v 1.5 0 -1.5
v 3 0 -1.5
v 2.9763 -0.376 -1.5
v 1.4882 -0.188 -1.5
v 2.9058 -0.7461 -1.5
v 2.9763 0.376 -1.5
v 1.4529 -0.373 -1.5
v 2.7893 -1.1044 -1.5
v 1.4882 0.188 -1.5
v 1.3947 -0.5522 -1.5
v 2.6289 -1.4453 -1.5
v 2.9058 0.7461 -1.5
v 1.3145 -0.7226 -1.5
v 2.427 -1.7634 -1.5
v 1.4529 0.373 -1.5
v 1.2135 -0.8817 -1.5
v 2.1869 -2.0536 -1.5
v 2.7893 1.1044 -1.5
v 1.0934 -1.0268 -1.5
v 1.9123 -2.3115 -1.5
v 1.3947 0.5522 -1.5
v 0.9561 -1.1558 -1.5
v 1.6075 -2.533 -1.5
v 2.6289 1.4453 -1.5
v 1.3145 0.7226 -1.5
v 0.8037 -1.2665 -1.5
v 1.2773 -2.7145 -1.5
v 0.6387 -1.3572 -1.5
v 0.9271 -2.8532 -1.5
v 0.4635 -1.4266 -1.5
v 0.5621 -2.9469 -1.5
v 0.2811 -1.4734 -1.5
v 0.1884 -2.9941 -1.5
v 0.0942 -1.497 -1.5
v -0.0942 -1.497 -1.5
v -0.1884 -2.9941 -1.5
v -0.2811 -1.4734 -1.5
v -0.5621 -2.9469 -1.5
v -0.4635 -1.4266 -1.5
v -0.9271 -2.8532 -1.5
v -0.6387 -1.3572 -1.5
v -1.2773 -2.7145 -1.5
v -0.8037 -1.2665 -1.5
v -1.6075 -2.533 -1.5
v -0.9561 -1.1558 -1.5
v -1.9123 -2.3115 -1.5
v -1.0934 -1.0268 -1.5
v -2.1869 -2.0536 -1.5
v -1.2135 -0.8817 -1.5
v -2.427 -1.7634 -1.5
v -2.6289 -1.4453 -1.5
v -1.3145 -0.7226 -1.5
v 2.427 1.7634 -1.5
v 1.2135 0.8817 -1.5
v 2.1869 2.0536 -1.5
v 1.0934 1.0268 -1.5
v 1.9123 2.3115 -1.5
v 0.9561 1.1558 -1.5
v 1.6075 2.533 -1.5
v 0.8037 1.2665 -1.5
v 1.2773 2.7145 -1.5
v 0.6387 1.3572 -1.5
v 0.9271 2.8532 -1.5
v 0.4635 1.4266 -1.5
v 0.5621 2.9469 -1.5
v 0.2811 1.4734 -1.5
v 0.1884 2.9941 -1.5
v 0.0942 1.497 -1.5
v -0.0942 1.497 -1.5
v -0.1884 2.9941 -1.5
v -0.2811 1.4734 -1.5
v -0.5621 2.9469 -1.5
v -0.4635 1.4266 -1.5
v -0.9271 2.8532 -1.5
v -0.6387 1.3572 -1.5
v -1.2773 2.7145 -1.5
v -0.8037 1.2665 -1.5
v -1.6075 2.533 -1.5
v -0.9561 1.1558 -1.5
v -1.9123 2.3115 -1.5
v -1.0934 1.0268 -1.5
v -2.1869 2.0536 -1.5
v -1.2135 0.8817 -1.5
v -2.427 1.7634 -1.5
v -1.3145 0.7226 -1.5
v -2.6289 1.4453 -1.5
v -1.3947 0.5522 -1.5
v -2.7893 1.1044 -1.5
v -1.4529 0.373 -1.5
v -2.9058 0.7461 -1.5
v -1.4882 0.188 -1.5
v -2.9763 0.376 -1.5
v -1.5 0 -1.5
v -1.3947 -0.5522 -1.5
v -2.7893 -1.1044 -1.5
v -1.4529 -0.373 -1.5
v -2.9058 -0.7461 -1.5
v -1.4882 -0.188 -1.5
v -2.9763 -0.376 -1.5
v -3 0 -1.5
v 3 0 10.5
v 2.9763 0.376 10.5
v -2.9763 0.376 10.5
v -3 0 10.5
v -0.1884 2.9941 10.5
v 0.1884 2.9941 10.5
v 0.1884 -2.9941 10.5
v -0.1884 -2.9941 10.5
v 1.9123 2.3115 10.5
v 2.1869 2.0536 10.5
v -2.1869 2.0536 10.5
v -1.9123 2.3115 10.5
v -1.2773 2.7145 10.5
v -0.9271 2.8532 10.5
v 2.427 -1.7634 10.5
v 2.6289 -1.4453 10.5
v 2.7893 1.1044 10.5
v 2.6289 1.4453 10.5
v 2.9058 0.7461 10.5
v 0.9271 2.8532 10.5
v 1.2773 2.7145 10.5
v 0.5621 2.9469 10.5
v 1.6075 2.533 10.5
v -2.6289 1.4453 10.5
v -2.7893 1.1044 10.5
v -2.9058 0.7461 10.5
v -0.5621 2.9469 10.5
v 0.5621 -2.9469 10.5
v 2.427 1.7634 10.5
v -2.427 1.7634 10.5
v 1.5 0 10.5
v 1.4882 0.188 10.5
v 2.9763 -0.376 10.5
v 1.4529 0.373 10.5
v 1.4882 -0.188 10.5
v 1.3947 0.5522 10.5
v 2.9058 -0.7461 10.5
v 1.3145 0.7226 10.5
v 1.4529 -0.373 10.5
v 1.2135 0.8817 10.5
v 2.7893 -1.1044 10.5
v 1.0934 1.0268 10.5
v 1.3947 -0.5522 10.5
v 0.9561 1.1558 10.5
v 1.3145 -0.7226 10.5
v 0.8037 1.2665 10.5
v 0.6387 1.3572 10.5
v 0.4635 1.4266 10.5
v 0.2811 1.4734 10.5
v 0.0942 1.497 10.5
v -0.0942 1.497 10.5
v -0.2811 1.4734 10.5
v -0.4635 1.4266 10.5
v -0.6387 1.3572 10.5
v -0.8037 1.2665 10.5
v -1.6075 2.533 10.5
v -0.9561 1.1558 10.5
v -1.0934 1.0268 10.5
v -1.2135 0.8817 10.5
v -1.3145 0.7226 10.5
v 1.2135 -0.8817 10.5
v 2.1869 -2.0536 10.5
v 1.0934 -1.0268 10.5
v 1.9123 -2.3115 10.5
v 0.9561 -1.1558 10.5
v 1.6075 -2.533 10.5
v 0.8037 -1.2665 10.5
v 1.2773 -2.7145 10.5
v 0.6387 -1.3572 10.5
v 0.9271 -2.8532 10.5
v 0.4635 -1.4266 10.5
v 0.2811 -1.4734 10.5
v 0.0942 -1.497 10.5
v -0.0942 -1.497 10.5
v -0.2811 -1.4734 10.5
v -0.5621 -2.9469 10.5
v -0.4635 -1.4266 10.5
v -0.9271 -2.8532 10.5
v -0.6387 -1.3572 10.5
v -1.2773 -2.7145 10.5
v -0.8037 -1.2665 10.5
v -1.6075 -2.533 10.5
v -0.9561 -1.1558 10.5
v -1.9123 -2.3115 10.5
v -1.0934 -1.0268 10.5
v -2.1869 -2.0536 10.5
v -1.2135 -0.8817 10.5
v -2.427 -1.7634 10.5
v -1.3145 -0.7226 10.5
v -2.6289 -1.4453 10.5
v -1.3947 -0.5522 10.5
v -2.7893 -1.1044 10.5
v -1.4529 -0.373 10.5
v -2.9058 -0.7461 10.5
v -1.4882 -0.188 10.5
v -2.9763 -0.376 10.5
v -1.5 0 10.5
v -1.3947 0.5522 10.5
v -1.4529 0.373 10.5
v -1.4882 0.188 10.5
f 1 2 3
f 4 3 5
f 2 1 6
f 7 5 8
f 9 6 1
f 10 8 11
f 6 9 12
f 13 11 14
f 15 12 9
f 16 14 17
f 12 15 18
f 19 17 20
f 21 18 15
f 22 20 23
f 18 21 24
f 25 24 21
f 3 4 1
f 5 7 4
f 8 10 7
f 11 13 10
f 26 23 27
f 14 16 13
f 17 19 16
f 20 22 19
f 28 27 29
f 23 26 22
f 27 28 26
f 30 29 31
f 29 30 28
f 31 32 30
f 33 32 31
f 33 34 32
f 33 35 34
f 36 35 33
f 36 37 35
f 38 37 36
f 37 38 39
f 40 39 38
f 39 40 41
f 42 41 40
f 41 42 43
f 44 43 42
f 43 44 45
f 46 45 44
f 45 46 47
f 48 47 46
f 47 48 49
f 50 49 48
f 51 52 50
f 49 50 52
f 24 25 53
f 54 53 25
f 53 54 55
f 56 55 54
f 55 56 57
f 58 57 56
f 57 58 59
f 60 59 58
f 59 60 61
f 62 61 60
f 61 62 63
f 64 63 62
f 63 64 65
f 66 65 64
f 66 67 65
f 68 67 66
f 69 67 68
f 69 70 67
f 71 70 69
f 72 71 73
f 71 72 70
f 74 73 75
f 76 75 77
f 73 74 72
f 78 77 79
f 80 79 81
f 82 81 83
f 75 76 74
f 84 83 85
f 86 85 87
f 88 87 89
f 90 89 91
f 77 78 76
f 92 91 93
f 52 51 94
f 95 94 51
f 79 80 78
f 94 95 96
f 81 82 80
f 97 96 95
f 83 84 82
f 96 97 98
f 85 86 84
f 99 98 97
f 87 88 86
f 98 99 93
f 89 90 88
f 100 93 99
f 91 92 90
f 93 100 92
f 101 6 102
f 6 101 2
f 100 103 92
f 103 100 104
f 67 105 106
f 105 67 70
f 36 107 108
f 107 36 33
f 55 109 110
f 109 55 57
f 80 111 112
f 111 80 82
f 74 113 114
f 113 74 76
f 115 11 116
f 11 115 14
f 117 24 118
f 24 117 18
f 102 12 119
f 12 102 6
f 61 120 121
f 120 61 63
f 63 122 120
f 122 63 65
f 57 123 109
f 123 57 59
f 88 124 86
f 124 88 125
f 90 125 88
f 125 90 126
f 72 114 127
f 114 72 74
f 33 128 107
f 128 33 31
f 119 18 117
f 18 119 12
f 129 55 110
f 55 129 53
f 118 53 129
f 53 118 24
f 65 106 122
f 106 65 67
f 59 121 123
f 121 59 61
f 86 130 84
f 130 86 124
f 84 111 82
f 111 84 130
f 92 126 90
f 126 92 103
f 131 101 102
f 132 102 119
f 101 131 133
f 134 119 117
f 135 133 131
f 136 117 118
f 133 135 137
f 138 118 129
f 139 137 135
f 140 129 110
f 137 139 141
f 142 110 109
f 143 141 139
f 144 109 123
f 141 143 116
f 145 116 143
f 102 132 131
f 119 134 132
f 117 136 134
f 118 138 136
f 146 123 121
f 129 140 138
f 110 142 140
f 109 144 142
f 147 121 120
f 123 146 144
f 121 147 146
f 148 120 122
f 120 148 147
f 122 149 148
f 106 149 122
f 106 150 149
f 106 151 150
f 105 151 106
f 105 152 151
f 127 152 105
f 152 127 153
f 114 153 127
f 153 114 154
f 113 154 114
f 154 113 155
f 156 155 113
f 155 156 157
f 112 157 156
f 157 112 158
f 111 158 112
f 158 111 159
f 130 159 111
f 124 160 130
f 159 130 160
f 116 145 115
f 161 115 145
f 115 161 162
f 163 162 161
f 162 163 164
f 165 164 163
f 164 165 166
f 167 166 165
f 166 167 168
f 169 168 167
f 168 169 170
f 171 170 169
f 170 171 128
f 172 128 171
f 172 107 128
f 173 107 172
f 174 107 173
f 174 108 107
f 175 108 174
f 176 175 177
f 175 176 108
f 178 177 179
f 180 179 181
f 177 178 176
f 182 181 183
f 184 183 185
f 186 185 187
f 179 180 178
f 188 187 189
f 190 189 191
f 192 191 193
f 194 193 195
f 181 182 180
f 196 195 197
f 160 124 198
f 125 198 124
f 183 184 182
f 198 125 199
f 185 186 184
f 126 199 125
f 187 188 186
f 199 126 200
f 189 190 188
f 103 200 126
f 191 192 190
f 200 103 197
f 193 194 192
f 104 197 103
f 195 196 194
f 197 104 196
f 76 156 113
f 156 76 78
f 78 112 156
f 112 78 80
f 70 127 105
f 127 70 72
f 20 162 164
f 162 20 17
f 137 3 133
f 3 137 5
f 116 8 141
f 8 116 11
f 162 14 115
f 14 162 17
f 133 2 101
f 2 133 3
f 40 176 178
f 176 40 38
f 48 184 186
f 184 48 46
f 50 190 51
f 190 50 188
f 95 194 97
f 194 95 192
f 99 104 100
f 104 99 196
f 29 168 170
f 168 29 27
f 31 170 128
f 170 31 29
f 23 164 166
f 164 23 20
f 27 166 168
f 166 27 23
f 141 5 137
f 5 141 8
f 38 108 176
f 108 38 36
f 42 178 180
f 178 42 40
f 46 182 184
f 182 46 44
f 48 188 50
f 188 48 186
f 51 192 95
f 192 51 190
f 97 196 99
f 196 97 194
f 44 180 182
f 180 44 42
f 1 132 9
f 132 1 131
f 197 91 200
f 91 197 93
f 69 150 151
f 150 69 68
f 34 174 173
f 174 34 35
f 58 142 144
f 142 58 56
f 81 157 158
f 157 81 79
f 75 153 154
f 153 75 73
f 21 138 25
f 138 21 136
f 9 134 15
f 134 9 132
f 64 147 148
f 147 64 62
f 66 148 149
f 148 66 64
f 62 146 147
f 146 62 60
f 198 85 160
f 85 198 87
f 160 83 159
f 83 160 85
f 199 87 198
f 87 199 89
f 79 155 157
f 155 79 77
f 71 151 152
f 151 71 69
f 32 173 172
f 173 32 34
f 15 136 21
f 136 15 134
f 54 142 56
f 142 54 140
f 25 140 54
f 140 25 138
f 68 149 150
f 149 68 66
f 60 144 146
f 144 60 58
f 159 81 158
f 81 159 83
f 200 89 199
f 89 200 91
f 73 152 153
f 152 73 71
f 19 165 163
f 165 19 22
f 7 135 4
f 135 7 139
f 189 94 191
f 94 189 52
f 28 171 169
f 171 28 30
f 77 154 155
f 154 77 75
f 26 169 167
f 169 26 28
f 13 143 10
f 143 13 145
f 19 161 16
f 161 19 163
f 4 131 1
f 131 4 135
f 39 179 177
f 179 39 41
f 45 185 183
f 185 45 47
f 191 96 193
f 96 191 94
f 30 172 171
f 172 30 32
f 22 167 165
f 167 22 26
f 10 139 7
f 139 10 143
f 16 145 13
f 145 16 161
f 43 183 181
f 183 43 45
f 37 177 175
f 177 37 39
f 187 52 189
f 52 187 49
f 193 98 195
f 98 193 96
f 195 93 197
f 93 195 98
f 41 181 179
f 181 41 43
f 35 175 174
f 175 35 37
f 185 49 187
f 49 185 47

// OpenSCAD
$fn = 50;


difference() {
	union() {
		translate(v = [0, 0, -1.5000000000]) {
			cylinder(h = 3, r = 1.0000000000);
		}
		translate(v = [0, 0, -1.5000000000]) {
			cylinder(h = 12, r = 3.0000000000);
		}
	}
	union() {
		translate(v = [0, 0, -50.0000000000]) {
			cylinder(h = 100, r = 1.5000000000);
		}
	}
}
